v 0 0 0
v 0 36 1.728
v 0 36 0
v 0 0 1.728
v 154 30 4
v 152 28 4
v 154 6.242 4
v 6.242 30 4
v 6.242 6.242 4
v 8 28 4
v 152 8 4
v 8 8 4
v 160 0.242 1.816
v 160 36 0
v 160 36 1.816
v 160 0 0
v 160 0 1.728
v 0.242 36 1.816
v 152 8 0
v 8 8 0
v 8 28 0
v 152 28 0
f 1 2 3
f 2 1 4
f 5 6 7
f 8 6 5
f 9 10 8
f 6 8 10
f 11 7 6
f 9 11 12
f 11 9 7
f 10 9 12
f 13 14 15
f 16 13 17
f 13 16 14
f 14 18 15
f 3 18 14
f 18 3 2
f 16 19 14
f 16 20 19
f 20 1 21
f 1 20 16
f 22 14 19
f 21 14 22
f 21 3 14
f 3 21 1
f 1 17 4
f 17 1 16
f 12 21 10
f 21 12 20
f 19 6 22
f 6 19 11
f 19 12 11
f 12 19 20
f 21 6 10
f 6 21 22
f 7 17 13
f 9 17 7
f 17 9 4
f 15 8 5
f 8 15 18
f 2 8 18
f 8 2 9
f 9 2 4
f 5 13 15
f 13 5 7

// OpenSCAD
// $fn = 100;

dvd_drive_width = 144;
dvd_drive_height = 20;
thickness = 4;
border = 8;



difference() {

    cube([dvd_drive_width + border * 2, dvd_drive_height + border * 2, thickness]);

    color("red")
    translate([border, border, -1])
    cube([dvd_drive_width, dvd_drive_height, thickness + 2]);

    color("red")
    translate([-1, -2, 1])
    rotate([20,0,0])
    cube([dvd_drive_width + border * 2 + 2, 10, 4]);

    color("red")
    translate([-1, dvd_drive_height + border * 2 - 6, 4])
    rotate([340,0,0])
    cube([dvd_drive_width + border * 2 + 2, 10, 4]);

    color("red")
    translate([-2, -2, 1])
    rotate([0,-20,0])
    cube([10, dvd_drive_height + border * 2 + 2, 4]);

    color("red")
    translate([dvd_drive_width + border * 2 - 6, -2, 4])
    rotate([0,20,0])
    cube([10, dvd_drive_height + border * 2 + 2, 4]);

}
